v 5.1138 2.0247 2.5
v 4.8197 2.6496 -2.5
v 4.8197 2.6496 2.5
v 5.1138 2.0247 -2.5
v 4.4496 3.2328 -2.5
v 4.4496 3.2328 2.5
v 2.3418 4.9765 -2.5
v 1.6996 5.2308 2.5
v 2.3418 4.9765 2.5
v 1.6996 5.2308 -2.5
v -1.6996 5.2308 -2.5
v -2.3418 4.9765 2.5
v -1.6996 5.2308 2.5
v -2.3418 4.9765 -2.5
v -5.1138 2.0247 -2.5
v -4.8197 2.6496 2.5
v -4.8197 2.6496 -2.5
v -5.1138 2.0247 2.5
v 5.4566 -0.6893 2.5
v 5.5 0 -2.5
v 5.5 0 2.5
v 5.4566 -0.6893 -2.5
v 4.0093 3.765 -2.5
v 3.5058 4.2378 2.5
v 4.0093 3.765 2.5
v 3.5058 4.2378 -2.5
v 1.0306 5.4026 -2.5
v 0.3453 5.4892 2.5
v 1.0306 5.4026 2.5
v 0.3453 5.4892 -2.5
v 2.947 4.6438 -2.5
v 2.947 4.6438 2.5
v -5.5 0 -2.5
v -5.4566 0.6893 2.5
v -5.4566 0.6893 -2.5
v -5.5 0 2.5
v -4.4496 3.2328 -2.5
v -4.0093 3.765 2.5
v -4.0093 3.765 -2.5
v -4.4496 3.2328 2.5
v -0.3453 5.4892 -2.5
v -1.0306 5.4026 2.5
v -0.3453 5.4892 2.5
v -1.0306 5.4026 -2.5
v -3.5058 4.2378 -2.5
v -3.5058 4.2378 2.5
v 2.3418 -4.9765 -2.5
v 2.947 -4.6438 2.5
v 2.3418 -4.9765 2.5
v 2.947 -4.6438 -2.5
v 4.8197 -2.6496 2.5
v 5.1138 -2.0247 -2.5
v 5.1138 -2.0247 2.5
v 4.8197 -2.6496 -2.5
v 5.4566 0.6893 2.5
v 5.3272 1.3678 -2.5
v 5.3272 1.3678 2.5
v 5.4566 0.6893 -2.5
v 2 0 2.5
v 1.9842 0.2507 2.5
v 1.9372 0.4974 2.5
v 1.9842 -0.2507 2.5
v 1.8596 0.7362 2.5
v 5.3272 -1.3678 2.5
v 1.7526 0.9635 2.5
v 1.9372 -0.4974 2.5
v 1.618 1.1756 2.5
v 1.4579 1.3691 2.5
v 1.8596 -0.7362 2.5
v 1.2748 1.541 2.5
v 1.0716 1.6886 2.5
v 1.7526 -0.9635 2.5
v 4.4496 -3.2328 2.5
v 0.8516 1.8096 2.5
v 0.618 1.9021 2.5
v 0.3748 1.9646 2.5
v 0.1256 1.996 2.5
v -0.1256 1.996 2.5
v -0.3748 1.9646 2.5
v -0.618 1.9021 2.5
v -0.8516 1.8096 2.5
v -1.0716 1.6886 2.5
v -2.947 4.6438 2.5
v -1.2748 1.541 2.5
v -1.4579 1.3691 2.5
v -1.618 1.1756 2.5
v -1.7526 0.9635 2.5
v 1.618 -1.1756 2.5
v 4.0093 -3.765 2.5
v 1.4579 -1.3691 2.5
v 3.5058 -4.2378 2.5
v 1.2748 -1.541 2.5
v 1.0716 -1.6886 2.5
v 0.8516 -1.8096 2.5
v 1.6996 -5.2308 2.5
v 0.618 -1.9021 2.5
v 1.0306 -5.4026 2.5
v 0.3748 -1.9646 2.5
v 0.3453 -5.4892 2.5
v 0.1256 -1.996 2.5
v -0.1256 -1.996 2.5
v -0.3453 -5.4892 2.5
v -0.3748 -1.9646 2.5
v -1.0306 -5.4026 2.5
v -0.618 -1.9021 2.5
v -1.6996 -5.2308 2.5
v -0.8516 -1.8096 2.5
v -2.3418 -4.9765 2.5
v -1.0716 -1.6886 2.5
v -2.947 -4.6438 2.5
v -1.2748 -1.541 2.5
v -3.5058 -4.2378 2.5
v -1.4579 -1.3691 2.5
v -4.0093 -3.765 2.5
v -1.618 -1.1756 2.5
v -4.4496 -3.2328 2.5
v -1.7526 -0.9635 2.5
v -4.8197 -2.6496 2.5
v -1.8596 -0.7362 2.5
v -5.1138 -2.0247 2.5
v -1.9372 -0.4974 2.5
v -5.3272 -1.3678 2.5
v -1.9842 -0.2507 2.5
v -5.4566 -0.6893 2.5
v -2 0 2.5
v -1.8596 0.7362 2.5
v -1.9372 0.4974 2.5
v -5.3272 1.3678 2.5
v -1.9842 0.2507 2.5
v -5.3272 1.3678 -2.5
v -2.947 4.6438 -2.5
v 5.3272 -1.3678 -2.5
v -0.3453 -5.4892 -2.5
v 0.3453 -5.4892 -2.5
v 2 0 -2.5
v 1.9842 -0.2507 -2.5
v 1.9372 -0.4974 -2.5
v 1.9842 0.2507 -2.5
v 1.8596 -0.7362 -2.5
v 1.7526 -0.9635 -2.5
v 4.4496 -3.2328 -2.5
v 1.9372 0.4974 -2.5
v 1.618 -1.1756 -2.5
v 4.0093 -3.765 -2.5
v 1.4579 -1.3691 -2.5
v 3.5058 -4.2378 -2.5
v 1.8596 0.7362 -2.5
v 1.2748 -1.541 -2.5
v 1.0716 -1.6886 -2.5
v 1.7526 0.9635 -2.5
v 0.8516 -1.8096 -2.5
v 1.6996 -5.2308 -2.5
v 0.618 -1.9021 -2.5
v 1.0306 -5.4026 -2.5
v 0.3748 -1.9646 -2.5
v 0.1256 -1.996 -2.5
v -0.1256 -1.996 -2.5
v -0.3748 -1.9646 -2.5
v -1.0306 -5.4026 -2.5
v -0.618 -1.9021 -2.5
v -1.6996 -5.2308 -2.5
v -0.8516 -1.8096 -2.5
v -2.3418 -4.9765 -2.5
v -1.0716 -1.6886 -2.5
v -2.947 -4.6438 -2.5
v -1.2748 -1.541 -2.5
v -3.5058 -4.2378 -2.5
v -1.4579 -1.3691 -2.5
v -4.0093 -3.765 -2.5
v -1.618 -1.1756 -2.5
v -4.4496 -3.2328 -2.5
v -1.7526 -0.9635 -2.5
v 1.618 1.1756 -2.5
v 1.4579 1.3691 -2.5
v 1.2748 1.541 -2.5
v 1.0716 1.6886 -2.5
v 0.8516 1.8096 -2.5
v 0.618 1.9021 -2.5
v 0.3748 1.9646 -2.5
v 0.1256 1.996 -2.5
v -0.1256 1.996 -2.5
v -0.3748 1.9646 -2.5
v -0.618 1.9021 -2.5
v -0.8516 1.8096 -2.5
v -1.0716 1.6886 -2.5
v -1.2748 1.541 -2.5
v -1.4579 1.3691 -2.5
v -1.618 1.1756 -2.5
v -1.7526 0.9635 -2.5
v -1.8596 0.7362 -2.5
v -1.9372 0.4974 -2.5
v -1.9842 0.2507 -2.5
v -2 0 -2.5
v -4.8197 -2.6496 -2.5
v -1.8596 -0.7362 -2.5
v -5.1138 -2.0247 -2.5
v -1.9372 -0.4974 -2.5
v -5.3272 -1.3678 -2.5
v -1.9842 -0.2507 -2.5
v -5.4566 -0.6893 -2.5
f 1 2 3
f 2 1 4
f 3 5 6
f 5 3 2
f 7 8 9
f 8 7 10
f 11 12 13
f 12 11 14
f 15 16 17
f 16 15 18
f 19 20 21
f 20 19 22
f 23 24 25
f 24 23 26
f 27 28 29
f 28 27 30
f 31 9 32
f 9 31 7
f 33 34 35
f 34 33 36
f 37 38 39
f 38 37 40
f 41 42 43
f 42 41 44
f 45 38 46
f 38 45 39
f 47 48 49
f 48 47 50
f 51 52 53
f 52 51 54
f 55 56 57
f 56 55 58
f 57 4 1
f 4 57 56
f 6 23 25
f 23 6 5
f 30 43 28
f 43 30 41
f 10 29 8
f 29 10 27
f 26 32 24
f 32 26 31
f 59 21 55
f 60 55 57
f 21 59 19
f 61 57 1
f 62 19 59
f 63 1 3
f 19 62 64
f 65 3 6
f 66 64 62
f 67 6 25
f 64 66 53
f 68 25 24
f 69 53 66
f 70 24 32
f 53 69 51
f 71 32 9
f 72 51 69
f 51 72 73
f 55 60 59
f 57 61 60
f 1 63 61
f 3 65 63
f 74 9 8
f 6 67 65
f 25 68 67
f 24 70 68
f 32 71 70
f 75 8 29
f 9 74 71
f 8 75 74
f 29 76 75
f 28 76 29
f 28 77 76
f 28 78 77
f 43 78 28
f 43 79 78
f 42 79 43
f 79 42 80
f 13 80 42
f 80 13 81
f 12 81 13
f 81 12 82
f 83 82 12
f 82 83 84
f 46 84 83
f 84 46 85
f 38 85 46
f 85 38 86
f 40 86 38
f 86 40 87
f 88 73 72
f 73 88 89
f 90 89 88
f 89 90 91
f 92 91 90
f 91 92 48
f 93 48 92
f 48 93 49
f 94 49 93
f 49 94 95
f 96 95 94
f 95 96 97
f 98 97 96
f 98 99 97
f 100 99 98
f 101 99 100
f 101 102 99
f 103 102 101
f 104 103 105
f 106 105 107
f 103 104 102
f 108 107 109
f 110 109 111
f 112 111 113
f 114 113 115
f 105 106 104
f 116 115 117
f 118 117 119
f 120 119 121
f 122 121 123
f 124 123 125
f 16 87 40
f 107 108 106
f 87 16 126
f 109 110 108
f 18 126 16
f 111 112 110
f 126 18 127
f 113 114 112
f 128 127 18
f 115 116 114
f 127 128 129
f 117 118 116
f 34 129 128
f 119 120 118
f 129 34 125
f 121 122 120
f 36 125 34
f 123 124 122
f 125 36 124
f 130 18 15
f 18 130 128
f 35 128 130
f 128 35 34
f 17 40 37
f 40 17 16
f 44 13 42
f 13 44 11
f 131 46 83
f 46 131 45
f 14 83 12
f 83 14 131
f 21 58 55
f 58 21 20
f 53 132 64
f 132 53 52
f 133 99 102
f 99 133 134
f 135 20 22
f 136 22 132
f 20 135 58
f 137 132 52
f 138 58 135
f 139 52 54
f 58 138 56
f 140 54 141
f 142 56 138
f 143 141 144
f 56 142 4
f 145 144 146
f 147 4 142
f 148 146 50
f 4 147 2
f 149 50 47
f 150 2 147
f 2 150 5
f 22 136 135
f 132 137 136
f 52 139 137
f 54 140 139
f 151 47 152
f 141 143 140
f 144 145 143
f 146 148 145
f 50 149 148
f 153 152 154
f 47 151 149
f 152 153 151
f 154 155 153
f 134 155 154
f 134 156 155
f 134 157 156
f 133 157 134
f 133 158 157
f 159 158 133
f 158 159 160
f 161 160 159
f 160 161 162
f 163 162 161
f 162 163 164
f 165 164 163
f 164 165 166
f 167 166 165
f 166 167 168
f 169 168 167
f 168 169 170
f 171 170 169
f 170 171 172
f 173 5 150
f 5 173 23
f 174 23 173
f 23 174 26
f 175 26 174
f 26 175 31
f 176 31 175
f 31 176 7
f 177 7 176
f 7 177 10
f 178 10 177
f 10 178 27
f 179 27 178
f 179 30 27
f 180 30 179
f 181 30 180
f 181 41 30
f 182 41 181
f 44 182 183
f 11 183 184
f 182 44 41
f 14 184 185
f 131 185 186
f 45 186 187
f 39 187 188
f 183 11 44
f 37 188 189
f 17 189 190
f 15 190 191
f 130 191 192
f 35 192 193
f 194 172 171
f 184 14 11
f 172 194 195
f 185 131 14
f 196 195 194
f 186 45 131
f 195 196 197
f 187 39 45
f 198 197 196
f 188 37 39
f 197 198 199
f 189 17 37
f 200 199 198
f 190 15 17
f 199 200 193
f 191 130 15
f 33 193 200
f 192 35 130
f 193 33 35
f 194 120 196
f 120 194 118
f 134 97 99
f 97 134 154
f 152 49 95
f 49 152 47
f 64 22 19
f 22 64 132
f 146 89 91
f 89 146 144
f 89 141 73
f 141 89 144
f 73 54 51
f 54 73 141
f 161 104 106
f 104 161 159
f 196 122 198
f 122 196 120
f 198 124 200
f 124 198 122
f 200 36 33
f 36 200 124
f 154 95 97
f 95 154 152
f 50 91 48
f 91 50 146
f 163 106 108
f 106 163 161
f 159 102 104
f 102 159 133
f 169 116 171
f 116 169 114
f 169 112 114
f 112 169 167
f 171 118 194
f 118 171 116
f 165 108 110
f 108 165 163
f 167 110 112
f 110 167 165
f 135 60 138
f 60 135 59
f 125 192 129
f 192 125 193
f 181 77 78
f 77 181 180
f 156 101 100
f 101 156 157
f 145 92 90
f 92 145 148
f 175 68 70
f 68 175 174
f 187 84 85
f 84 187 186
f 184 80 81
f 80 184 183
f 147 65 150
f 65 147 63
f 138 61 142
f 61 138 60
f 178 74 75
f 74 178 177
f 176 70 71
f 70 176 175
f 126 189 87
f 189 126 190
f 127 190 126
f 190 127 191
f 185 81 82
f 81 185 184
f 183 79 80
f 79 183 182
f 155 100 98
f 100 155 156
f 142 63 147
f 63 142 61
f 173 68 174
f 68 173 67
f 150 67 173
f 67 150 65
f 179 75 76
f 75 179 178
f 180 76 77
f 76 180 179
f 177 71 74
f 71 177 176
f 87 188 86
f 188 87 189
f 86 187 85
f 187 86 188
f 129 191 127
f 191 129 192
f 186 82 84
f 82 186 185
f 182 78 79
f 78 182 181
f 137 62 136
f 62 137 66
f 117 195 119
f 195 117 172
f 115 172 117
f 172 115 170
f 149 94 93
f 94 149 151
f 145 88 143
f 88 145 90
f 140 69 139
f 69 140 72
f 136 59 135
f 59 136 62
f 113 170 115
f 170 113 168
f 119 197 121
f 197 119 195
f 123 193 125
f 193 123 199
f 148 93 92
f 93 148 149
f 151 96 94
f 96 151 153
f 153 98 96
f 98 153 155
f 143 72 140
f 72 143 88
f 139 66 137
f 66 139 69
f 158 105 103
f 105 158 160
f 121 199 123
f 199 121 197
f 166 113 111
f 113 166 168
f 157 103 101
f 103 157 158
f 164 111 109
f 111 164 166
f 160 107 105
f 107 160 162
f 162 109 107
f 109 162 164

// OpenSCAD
$fn = 50;


difference() {
	union() {
		translate(v = [0, 0, -2.5000000000]) {
			cylinder(h = 5, r = 5.5000000000);
		}
	}
	union() {
		translate(v = [0, 0, -100.0000000000]) {
			cylinder(h = 200, r = 2);
		}
	}
}
